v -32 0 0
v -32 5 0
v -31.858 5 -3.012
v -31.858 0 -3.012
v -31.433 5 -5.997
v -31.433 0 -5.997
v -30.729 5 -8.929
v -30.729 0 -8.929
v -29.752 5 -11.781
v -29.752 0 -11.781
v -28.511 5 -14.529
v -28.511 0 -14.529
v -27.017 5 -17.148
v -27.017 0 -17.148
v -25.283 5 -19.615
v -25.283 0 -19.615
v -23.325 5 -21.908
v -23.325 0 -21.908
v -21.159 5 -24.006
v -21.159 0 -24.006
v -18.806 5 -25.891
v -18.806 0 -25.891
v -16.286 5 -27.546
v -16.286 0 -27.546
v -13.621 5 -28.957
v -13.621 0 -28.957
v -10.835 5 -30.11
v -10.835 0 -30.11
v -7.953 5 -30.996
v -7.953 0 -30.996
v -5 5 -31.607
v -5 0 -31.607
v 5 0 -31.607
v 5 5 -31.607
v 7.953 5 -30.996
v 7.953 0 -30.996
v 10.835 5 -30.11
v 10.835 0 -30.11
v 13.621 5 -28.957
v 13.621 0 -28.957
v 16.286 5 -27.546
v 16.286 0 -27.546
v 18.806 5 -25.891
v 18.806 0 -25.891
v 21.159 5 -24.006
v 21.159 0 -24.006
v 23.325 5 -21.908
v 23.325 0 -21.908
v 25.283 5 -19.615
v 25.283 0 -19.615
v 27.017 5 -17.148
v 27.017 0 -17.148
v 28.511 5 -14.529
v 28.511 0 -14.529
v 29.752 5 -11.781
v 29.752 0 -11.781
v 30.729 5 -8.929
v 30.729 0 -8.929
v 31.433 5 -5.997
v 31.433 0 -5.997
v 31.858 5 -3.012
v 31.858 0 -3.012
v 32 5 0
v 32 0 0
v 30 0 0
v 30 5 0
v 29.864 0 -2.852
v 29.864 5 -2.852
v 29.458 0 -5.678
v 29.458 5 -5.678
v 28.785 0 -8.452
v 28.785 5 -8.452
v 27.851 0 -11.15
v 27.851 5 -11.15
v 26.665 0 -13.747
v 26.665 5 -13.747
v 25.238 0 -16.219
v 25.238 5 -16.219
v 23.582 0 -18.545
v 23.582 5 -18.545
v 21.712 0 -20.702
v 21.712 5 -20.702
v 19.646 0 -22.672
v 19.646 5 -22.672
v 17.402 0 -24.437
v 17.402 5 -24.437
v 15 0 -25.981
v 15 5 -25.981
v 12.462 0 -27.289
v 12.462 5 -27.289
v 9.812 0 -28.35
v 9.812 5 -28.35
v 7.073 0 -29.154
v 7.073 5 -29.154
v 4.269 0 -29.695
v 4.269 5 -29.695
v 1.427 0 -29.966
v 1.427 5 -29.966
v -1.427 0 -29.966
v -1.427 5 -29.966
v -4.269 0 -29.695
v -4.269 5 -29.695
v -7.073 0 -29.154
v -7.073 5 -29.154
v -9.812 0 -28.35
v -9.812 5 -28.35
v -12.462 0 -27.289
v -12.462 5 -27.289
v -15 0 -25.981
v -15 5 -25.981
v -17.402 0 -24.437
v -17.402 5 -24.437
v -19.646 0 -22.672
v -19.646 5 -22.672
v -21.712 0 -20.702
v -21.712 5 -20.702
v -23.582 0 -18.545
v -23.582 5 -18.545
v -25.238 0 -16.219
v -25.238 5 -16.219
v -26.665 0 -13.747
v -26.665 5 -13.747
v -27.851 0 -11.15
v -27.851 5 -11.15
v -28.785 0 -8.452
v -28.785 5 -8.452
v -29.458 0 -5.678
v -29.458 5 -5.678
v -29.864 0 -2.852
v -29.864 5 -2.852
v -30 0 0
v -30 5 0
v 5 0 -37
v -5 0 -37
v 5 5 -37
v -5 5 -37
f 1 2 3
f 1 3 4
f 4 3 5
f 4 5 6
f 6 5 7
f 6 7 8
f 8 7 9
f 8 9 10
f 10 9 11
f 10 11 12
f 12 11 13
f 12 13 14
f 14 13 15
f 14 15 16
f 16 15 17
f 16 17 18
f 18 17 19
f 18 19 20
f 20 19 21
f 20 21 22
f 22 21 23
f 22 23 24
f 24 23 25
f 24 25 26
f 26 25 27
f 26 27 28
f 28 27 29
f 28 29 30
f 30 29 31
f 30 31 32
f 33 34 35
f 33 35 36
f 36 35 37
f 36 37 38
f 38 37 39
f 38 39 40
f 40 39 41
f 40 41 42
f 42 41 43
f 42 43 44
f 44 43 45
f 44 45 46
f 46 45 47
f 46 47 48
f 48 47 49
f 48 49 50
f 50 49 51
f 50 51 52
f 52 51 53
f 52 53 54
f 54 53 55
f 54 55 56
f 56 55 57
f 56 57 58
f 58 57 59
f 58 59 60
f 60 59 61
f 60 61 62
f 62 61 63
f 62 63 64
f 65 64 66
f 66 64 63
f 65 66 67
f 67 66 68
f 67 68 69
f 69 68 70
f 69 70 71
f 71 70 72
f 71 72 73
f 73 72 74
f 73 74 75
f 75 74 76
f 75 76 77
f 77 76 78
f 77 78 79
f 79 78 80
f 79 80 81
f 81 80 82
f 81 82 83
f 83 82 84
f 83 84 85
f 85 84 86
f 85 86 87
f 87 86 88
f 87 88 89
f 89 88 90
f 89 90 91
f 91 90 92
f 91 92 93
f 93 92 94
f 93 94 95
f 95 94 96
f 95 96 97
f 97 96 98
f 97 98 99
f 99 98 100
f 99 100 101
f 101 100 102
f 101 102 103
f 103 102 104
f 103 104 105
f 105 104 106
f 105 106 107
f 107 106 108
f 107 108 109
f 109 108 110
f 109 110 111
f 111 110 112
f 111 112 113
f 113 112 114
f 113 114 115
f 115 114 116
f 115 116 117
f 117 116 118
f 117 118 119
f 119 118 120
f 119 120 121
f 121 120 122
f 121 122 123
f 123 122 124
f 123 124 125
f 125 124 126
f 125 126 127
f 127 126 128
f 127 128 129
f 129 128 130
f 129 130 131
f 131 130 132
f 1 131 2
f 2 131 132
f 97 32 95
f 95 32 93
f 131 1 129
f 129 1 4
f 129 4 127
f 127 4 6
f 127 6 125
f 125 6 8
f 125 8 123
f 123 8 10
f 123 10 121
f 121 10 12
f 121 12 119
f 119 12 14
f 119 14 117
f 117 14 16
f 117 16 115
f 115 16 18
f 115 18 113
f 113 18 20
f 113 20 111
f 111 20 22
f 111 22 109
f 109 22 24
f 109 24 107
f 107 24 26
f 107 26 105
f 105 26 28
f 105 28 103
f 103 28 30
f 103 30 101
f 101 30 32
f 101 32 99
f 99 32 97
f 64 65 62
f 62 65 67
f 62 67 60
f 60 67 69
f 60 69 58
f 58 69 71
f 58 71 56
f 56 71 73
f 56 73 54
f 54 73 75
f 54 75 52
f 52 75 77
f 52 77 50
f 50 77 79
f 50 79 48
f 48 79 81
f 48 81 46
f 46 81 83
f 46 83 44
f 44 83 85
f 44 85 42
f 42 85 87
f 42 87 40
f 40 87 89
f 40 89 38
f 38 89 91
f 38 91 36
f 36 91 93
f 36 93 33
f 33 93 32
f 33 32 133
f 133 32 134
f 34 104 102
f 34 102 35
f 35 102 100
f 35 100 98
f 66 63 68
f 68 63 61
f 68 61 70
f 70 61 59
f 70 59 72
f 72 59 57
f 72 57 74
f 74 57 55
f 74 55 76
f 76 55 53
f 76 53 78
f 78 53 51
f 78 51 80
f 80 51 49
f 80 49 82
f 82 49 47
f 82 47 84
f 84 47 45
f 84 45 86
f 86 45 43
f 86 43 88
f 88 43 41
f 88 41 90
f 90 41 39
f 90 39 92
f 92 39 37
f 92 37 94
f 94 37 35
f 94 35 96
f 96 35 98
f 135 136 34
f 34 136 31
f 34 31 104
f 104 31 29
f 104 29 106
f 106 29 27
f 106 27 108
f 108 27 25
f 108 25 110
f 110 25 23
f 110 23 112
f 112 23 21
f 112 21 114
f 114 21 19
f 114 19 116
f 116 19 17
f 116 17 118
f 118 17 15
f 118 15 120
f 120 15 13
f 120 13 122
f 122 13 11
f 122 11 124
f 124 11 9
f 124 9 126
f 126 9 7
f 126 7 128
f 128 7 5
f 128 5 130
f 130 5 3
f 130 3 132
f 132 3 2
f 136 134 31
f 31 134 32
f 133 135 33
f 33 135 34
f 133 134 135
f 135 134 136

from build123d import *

# Parameters (mm, degrees)
EXTRUDE_1_DEPTH = 5
EXTRUDE_2_DEPTH = 5


with BuildPart() as part:
    # 草图1 → 凸台-拉伸1 (new body)
    with BuildSketch(Plane(origin=(0, 0, 0), x_dir=(1, 0, 0), z_dir=(0, 1, 0))):
        with BuildLine():
            Line((-32, 0), (-30, 0))
            ThreePointArc((-30, 0), (0, 30), (30, 0))
            Line((30, 0), (32, 0))
            ThreePointArc((32, 0), (0, 32), (-32, 0))
        make_face()
    extrude(amount=EXTRUDE_1_DEPTH)

    # 草图2 → 凸台-拉伸2 (add)
    with BuildSketch(Plane(origin=(0, 0, 0), x_dir=(1, 0, 0), z_dir=(0, 1, 0))):
        Polygon((5, 37), (0, 37), (-5, 37), (-5, 30.465276436), (5, 30.465276436), align=None)
    extrude(amount=EXTRUDE_2_DEPTH)


solid = part.part
